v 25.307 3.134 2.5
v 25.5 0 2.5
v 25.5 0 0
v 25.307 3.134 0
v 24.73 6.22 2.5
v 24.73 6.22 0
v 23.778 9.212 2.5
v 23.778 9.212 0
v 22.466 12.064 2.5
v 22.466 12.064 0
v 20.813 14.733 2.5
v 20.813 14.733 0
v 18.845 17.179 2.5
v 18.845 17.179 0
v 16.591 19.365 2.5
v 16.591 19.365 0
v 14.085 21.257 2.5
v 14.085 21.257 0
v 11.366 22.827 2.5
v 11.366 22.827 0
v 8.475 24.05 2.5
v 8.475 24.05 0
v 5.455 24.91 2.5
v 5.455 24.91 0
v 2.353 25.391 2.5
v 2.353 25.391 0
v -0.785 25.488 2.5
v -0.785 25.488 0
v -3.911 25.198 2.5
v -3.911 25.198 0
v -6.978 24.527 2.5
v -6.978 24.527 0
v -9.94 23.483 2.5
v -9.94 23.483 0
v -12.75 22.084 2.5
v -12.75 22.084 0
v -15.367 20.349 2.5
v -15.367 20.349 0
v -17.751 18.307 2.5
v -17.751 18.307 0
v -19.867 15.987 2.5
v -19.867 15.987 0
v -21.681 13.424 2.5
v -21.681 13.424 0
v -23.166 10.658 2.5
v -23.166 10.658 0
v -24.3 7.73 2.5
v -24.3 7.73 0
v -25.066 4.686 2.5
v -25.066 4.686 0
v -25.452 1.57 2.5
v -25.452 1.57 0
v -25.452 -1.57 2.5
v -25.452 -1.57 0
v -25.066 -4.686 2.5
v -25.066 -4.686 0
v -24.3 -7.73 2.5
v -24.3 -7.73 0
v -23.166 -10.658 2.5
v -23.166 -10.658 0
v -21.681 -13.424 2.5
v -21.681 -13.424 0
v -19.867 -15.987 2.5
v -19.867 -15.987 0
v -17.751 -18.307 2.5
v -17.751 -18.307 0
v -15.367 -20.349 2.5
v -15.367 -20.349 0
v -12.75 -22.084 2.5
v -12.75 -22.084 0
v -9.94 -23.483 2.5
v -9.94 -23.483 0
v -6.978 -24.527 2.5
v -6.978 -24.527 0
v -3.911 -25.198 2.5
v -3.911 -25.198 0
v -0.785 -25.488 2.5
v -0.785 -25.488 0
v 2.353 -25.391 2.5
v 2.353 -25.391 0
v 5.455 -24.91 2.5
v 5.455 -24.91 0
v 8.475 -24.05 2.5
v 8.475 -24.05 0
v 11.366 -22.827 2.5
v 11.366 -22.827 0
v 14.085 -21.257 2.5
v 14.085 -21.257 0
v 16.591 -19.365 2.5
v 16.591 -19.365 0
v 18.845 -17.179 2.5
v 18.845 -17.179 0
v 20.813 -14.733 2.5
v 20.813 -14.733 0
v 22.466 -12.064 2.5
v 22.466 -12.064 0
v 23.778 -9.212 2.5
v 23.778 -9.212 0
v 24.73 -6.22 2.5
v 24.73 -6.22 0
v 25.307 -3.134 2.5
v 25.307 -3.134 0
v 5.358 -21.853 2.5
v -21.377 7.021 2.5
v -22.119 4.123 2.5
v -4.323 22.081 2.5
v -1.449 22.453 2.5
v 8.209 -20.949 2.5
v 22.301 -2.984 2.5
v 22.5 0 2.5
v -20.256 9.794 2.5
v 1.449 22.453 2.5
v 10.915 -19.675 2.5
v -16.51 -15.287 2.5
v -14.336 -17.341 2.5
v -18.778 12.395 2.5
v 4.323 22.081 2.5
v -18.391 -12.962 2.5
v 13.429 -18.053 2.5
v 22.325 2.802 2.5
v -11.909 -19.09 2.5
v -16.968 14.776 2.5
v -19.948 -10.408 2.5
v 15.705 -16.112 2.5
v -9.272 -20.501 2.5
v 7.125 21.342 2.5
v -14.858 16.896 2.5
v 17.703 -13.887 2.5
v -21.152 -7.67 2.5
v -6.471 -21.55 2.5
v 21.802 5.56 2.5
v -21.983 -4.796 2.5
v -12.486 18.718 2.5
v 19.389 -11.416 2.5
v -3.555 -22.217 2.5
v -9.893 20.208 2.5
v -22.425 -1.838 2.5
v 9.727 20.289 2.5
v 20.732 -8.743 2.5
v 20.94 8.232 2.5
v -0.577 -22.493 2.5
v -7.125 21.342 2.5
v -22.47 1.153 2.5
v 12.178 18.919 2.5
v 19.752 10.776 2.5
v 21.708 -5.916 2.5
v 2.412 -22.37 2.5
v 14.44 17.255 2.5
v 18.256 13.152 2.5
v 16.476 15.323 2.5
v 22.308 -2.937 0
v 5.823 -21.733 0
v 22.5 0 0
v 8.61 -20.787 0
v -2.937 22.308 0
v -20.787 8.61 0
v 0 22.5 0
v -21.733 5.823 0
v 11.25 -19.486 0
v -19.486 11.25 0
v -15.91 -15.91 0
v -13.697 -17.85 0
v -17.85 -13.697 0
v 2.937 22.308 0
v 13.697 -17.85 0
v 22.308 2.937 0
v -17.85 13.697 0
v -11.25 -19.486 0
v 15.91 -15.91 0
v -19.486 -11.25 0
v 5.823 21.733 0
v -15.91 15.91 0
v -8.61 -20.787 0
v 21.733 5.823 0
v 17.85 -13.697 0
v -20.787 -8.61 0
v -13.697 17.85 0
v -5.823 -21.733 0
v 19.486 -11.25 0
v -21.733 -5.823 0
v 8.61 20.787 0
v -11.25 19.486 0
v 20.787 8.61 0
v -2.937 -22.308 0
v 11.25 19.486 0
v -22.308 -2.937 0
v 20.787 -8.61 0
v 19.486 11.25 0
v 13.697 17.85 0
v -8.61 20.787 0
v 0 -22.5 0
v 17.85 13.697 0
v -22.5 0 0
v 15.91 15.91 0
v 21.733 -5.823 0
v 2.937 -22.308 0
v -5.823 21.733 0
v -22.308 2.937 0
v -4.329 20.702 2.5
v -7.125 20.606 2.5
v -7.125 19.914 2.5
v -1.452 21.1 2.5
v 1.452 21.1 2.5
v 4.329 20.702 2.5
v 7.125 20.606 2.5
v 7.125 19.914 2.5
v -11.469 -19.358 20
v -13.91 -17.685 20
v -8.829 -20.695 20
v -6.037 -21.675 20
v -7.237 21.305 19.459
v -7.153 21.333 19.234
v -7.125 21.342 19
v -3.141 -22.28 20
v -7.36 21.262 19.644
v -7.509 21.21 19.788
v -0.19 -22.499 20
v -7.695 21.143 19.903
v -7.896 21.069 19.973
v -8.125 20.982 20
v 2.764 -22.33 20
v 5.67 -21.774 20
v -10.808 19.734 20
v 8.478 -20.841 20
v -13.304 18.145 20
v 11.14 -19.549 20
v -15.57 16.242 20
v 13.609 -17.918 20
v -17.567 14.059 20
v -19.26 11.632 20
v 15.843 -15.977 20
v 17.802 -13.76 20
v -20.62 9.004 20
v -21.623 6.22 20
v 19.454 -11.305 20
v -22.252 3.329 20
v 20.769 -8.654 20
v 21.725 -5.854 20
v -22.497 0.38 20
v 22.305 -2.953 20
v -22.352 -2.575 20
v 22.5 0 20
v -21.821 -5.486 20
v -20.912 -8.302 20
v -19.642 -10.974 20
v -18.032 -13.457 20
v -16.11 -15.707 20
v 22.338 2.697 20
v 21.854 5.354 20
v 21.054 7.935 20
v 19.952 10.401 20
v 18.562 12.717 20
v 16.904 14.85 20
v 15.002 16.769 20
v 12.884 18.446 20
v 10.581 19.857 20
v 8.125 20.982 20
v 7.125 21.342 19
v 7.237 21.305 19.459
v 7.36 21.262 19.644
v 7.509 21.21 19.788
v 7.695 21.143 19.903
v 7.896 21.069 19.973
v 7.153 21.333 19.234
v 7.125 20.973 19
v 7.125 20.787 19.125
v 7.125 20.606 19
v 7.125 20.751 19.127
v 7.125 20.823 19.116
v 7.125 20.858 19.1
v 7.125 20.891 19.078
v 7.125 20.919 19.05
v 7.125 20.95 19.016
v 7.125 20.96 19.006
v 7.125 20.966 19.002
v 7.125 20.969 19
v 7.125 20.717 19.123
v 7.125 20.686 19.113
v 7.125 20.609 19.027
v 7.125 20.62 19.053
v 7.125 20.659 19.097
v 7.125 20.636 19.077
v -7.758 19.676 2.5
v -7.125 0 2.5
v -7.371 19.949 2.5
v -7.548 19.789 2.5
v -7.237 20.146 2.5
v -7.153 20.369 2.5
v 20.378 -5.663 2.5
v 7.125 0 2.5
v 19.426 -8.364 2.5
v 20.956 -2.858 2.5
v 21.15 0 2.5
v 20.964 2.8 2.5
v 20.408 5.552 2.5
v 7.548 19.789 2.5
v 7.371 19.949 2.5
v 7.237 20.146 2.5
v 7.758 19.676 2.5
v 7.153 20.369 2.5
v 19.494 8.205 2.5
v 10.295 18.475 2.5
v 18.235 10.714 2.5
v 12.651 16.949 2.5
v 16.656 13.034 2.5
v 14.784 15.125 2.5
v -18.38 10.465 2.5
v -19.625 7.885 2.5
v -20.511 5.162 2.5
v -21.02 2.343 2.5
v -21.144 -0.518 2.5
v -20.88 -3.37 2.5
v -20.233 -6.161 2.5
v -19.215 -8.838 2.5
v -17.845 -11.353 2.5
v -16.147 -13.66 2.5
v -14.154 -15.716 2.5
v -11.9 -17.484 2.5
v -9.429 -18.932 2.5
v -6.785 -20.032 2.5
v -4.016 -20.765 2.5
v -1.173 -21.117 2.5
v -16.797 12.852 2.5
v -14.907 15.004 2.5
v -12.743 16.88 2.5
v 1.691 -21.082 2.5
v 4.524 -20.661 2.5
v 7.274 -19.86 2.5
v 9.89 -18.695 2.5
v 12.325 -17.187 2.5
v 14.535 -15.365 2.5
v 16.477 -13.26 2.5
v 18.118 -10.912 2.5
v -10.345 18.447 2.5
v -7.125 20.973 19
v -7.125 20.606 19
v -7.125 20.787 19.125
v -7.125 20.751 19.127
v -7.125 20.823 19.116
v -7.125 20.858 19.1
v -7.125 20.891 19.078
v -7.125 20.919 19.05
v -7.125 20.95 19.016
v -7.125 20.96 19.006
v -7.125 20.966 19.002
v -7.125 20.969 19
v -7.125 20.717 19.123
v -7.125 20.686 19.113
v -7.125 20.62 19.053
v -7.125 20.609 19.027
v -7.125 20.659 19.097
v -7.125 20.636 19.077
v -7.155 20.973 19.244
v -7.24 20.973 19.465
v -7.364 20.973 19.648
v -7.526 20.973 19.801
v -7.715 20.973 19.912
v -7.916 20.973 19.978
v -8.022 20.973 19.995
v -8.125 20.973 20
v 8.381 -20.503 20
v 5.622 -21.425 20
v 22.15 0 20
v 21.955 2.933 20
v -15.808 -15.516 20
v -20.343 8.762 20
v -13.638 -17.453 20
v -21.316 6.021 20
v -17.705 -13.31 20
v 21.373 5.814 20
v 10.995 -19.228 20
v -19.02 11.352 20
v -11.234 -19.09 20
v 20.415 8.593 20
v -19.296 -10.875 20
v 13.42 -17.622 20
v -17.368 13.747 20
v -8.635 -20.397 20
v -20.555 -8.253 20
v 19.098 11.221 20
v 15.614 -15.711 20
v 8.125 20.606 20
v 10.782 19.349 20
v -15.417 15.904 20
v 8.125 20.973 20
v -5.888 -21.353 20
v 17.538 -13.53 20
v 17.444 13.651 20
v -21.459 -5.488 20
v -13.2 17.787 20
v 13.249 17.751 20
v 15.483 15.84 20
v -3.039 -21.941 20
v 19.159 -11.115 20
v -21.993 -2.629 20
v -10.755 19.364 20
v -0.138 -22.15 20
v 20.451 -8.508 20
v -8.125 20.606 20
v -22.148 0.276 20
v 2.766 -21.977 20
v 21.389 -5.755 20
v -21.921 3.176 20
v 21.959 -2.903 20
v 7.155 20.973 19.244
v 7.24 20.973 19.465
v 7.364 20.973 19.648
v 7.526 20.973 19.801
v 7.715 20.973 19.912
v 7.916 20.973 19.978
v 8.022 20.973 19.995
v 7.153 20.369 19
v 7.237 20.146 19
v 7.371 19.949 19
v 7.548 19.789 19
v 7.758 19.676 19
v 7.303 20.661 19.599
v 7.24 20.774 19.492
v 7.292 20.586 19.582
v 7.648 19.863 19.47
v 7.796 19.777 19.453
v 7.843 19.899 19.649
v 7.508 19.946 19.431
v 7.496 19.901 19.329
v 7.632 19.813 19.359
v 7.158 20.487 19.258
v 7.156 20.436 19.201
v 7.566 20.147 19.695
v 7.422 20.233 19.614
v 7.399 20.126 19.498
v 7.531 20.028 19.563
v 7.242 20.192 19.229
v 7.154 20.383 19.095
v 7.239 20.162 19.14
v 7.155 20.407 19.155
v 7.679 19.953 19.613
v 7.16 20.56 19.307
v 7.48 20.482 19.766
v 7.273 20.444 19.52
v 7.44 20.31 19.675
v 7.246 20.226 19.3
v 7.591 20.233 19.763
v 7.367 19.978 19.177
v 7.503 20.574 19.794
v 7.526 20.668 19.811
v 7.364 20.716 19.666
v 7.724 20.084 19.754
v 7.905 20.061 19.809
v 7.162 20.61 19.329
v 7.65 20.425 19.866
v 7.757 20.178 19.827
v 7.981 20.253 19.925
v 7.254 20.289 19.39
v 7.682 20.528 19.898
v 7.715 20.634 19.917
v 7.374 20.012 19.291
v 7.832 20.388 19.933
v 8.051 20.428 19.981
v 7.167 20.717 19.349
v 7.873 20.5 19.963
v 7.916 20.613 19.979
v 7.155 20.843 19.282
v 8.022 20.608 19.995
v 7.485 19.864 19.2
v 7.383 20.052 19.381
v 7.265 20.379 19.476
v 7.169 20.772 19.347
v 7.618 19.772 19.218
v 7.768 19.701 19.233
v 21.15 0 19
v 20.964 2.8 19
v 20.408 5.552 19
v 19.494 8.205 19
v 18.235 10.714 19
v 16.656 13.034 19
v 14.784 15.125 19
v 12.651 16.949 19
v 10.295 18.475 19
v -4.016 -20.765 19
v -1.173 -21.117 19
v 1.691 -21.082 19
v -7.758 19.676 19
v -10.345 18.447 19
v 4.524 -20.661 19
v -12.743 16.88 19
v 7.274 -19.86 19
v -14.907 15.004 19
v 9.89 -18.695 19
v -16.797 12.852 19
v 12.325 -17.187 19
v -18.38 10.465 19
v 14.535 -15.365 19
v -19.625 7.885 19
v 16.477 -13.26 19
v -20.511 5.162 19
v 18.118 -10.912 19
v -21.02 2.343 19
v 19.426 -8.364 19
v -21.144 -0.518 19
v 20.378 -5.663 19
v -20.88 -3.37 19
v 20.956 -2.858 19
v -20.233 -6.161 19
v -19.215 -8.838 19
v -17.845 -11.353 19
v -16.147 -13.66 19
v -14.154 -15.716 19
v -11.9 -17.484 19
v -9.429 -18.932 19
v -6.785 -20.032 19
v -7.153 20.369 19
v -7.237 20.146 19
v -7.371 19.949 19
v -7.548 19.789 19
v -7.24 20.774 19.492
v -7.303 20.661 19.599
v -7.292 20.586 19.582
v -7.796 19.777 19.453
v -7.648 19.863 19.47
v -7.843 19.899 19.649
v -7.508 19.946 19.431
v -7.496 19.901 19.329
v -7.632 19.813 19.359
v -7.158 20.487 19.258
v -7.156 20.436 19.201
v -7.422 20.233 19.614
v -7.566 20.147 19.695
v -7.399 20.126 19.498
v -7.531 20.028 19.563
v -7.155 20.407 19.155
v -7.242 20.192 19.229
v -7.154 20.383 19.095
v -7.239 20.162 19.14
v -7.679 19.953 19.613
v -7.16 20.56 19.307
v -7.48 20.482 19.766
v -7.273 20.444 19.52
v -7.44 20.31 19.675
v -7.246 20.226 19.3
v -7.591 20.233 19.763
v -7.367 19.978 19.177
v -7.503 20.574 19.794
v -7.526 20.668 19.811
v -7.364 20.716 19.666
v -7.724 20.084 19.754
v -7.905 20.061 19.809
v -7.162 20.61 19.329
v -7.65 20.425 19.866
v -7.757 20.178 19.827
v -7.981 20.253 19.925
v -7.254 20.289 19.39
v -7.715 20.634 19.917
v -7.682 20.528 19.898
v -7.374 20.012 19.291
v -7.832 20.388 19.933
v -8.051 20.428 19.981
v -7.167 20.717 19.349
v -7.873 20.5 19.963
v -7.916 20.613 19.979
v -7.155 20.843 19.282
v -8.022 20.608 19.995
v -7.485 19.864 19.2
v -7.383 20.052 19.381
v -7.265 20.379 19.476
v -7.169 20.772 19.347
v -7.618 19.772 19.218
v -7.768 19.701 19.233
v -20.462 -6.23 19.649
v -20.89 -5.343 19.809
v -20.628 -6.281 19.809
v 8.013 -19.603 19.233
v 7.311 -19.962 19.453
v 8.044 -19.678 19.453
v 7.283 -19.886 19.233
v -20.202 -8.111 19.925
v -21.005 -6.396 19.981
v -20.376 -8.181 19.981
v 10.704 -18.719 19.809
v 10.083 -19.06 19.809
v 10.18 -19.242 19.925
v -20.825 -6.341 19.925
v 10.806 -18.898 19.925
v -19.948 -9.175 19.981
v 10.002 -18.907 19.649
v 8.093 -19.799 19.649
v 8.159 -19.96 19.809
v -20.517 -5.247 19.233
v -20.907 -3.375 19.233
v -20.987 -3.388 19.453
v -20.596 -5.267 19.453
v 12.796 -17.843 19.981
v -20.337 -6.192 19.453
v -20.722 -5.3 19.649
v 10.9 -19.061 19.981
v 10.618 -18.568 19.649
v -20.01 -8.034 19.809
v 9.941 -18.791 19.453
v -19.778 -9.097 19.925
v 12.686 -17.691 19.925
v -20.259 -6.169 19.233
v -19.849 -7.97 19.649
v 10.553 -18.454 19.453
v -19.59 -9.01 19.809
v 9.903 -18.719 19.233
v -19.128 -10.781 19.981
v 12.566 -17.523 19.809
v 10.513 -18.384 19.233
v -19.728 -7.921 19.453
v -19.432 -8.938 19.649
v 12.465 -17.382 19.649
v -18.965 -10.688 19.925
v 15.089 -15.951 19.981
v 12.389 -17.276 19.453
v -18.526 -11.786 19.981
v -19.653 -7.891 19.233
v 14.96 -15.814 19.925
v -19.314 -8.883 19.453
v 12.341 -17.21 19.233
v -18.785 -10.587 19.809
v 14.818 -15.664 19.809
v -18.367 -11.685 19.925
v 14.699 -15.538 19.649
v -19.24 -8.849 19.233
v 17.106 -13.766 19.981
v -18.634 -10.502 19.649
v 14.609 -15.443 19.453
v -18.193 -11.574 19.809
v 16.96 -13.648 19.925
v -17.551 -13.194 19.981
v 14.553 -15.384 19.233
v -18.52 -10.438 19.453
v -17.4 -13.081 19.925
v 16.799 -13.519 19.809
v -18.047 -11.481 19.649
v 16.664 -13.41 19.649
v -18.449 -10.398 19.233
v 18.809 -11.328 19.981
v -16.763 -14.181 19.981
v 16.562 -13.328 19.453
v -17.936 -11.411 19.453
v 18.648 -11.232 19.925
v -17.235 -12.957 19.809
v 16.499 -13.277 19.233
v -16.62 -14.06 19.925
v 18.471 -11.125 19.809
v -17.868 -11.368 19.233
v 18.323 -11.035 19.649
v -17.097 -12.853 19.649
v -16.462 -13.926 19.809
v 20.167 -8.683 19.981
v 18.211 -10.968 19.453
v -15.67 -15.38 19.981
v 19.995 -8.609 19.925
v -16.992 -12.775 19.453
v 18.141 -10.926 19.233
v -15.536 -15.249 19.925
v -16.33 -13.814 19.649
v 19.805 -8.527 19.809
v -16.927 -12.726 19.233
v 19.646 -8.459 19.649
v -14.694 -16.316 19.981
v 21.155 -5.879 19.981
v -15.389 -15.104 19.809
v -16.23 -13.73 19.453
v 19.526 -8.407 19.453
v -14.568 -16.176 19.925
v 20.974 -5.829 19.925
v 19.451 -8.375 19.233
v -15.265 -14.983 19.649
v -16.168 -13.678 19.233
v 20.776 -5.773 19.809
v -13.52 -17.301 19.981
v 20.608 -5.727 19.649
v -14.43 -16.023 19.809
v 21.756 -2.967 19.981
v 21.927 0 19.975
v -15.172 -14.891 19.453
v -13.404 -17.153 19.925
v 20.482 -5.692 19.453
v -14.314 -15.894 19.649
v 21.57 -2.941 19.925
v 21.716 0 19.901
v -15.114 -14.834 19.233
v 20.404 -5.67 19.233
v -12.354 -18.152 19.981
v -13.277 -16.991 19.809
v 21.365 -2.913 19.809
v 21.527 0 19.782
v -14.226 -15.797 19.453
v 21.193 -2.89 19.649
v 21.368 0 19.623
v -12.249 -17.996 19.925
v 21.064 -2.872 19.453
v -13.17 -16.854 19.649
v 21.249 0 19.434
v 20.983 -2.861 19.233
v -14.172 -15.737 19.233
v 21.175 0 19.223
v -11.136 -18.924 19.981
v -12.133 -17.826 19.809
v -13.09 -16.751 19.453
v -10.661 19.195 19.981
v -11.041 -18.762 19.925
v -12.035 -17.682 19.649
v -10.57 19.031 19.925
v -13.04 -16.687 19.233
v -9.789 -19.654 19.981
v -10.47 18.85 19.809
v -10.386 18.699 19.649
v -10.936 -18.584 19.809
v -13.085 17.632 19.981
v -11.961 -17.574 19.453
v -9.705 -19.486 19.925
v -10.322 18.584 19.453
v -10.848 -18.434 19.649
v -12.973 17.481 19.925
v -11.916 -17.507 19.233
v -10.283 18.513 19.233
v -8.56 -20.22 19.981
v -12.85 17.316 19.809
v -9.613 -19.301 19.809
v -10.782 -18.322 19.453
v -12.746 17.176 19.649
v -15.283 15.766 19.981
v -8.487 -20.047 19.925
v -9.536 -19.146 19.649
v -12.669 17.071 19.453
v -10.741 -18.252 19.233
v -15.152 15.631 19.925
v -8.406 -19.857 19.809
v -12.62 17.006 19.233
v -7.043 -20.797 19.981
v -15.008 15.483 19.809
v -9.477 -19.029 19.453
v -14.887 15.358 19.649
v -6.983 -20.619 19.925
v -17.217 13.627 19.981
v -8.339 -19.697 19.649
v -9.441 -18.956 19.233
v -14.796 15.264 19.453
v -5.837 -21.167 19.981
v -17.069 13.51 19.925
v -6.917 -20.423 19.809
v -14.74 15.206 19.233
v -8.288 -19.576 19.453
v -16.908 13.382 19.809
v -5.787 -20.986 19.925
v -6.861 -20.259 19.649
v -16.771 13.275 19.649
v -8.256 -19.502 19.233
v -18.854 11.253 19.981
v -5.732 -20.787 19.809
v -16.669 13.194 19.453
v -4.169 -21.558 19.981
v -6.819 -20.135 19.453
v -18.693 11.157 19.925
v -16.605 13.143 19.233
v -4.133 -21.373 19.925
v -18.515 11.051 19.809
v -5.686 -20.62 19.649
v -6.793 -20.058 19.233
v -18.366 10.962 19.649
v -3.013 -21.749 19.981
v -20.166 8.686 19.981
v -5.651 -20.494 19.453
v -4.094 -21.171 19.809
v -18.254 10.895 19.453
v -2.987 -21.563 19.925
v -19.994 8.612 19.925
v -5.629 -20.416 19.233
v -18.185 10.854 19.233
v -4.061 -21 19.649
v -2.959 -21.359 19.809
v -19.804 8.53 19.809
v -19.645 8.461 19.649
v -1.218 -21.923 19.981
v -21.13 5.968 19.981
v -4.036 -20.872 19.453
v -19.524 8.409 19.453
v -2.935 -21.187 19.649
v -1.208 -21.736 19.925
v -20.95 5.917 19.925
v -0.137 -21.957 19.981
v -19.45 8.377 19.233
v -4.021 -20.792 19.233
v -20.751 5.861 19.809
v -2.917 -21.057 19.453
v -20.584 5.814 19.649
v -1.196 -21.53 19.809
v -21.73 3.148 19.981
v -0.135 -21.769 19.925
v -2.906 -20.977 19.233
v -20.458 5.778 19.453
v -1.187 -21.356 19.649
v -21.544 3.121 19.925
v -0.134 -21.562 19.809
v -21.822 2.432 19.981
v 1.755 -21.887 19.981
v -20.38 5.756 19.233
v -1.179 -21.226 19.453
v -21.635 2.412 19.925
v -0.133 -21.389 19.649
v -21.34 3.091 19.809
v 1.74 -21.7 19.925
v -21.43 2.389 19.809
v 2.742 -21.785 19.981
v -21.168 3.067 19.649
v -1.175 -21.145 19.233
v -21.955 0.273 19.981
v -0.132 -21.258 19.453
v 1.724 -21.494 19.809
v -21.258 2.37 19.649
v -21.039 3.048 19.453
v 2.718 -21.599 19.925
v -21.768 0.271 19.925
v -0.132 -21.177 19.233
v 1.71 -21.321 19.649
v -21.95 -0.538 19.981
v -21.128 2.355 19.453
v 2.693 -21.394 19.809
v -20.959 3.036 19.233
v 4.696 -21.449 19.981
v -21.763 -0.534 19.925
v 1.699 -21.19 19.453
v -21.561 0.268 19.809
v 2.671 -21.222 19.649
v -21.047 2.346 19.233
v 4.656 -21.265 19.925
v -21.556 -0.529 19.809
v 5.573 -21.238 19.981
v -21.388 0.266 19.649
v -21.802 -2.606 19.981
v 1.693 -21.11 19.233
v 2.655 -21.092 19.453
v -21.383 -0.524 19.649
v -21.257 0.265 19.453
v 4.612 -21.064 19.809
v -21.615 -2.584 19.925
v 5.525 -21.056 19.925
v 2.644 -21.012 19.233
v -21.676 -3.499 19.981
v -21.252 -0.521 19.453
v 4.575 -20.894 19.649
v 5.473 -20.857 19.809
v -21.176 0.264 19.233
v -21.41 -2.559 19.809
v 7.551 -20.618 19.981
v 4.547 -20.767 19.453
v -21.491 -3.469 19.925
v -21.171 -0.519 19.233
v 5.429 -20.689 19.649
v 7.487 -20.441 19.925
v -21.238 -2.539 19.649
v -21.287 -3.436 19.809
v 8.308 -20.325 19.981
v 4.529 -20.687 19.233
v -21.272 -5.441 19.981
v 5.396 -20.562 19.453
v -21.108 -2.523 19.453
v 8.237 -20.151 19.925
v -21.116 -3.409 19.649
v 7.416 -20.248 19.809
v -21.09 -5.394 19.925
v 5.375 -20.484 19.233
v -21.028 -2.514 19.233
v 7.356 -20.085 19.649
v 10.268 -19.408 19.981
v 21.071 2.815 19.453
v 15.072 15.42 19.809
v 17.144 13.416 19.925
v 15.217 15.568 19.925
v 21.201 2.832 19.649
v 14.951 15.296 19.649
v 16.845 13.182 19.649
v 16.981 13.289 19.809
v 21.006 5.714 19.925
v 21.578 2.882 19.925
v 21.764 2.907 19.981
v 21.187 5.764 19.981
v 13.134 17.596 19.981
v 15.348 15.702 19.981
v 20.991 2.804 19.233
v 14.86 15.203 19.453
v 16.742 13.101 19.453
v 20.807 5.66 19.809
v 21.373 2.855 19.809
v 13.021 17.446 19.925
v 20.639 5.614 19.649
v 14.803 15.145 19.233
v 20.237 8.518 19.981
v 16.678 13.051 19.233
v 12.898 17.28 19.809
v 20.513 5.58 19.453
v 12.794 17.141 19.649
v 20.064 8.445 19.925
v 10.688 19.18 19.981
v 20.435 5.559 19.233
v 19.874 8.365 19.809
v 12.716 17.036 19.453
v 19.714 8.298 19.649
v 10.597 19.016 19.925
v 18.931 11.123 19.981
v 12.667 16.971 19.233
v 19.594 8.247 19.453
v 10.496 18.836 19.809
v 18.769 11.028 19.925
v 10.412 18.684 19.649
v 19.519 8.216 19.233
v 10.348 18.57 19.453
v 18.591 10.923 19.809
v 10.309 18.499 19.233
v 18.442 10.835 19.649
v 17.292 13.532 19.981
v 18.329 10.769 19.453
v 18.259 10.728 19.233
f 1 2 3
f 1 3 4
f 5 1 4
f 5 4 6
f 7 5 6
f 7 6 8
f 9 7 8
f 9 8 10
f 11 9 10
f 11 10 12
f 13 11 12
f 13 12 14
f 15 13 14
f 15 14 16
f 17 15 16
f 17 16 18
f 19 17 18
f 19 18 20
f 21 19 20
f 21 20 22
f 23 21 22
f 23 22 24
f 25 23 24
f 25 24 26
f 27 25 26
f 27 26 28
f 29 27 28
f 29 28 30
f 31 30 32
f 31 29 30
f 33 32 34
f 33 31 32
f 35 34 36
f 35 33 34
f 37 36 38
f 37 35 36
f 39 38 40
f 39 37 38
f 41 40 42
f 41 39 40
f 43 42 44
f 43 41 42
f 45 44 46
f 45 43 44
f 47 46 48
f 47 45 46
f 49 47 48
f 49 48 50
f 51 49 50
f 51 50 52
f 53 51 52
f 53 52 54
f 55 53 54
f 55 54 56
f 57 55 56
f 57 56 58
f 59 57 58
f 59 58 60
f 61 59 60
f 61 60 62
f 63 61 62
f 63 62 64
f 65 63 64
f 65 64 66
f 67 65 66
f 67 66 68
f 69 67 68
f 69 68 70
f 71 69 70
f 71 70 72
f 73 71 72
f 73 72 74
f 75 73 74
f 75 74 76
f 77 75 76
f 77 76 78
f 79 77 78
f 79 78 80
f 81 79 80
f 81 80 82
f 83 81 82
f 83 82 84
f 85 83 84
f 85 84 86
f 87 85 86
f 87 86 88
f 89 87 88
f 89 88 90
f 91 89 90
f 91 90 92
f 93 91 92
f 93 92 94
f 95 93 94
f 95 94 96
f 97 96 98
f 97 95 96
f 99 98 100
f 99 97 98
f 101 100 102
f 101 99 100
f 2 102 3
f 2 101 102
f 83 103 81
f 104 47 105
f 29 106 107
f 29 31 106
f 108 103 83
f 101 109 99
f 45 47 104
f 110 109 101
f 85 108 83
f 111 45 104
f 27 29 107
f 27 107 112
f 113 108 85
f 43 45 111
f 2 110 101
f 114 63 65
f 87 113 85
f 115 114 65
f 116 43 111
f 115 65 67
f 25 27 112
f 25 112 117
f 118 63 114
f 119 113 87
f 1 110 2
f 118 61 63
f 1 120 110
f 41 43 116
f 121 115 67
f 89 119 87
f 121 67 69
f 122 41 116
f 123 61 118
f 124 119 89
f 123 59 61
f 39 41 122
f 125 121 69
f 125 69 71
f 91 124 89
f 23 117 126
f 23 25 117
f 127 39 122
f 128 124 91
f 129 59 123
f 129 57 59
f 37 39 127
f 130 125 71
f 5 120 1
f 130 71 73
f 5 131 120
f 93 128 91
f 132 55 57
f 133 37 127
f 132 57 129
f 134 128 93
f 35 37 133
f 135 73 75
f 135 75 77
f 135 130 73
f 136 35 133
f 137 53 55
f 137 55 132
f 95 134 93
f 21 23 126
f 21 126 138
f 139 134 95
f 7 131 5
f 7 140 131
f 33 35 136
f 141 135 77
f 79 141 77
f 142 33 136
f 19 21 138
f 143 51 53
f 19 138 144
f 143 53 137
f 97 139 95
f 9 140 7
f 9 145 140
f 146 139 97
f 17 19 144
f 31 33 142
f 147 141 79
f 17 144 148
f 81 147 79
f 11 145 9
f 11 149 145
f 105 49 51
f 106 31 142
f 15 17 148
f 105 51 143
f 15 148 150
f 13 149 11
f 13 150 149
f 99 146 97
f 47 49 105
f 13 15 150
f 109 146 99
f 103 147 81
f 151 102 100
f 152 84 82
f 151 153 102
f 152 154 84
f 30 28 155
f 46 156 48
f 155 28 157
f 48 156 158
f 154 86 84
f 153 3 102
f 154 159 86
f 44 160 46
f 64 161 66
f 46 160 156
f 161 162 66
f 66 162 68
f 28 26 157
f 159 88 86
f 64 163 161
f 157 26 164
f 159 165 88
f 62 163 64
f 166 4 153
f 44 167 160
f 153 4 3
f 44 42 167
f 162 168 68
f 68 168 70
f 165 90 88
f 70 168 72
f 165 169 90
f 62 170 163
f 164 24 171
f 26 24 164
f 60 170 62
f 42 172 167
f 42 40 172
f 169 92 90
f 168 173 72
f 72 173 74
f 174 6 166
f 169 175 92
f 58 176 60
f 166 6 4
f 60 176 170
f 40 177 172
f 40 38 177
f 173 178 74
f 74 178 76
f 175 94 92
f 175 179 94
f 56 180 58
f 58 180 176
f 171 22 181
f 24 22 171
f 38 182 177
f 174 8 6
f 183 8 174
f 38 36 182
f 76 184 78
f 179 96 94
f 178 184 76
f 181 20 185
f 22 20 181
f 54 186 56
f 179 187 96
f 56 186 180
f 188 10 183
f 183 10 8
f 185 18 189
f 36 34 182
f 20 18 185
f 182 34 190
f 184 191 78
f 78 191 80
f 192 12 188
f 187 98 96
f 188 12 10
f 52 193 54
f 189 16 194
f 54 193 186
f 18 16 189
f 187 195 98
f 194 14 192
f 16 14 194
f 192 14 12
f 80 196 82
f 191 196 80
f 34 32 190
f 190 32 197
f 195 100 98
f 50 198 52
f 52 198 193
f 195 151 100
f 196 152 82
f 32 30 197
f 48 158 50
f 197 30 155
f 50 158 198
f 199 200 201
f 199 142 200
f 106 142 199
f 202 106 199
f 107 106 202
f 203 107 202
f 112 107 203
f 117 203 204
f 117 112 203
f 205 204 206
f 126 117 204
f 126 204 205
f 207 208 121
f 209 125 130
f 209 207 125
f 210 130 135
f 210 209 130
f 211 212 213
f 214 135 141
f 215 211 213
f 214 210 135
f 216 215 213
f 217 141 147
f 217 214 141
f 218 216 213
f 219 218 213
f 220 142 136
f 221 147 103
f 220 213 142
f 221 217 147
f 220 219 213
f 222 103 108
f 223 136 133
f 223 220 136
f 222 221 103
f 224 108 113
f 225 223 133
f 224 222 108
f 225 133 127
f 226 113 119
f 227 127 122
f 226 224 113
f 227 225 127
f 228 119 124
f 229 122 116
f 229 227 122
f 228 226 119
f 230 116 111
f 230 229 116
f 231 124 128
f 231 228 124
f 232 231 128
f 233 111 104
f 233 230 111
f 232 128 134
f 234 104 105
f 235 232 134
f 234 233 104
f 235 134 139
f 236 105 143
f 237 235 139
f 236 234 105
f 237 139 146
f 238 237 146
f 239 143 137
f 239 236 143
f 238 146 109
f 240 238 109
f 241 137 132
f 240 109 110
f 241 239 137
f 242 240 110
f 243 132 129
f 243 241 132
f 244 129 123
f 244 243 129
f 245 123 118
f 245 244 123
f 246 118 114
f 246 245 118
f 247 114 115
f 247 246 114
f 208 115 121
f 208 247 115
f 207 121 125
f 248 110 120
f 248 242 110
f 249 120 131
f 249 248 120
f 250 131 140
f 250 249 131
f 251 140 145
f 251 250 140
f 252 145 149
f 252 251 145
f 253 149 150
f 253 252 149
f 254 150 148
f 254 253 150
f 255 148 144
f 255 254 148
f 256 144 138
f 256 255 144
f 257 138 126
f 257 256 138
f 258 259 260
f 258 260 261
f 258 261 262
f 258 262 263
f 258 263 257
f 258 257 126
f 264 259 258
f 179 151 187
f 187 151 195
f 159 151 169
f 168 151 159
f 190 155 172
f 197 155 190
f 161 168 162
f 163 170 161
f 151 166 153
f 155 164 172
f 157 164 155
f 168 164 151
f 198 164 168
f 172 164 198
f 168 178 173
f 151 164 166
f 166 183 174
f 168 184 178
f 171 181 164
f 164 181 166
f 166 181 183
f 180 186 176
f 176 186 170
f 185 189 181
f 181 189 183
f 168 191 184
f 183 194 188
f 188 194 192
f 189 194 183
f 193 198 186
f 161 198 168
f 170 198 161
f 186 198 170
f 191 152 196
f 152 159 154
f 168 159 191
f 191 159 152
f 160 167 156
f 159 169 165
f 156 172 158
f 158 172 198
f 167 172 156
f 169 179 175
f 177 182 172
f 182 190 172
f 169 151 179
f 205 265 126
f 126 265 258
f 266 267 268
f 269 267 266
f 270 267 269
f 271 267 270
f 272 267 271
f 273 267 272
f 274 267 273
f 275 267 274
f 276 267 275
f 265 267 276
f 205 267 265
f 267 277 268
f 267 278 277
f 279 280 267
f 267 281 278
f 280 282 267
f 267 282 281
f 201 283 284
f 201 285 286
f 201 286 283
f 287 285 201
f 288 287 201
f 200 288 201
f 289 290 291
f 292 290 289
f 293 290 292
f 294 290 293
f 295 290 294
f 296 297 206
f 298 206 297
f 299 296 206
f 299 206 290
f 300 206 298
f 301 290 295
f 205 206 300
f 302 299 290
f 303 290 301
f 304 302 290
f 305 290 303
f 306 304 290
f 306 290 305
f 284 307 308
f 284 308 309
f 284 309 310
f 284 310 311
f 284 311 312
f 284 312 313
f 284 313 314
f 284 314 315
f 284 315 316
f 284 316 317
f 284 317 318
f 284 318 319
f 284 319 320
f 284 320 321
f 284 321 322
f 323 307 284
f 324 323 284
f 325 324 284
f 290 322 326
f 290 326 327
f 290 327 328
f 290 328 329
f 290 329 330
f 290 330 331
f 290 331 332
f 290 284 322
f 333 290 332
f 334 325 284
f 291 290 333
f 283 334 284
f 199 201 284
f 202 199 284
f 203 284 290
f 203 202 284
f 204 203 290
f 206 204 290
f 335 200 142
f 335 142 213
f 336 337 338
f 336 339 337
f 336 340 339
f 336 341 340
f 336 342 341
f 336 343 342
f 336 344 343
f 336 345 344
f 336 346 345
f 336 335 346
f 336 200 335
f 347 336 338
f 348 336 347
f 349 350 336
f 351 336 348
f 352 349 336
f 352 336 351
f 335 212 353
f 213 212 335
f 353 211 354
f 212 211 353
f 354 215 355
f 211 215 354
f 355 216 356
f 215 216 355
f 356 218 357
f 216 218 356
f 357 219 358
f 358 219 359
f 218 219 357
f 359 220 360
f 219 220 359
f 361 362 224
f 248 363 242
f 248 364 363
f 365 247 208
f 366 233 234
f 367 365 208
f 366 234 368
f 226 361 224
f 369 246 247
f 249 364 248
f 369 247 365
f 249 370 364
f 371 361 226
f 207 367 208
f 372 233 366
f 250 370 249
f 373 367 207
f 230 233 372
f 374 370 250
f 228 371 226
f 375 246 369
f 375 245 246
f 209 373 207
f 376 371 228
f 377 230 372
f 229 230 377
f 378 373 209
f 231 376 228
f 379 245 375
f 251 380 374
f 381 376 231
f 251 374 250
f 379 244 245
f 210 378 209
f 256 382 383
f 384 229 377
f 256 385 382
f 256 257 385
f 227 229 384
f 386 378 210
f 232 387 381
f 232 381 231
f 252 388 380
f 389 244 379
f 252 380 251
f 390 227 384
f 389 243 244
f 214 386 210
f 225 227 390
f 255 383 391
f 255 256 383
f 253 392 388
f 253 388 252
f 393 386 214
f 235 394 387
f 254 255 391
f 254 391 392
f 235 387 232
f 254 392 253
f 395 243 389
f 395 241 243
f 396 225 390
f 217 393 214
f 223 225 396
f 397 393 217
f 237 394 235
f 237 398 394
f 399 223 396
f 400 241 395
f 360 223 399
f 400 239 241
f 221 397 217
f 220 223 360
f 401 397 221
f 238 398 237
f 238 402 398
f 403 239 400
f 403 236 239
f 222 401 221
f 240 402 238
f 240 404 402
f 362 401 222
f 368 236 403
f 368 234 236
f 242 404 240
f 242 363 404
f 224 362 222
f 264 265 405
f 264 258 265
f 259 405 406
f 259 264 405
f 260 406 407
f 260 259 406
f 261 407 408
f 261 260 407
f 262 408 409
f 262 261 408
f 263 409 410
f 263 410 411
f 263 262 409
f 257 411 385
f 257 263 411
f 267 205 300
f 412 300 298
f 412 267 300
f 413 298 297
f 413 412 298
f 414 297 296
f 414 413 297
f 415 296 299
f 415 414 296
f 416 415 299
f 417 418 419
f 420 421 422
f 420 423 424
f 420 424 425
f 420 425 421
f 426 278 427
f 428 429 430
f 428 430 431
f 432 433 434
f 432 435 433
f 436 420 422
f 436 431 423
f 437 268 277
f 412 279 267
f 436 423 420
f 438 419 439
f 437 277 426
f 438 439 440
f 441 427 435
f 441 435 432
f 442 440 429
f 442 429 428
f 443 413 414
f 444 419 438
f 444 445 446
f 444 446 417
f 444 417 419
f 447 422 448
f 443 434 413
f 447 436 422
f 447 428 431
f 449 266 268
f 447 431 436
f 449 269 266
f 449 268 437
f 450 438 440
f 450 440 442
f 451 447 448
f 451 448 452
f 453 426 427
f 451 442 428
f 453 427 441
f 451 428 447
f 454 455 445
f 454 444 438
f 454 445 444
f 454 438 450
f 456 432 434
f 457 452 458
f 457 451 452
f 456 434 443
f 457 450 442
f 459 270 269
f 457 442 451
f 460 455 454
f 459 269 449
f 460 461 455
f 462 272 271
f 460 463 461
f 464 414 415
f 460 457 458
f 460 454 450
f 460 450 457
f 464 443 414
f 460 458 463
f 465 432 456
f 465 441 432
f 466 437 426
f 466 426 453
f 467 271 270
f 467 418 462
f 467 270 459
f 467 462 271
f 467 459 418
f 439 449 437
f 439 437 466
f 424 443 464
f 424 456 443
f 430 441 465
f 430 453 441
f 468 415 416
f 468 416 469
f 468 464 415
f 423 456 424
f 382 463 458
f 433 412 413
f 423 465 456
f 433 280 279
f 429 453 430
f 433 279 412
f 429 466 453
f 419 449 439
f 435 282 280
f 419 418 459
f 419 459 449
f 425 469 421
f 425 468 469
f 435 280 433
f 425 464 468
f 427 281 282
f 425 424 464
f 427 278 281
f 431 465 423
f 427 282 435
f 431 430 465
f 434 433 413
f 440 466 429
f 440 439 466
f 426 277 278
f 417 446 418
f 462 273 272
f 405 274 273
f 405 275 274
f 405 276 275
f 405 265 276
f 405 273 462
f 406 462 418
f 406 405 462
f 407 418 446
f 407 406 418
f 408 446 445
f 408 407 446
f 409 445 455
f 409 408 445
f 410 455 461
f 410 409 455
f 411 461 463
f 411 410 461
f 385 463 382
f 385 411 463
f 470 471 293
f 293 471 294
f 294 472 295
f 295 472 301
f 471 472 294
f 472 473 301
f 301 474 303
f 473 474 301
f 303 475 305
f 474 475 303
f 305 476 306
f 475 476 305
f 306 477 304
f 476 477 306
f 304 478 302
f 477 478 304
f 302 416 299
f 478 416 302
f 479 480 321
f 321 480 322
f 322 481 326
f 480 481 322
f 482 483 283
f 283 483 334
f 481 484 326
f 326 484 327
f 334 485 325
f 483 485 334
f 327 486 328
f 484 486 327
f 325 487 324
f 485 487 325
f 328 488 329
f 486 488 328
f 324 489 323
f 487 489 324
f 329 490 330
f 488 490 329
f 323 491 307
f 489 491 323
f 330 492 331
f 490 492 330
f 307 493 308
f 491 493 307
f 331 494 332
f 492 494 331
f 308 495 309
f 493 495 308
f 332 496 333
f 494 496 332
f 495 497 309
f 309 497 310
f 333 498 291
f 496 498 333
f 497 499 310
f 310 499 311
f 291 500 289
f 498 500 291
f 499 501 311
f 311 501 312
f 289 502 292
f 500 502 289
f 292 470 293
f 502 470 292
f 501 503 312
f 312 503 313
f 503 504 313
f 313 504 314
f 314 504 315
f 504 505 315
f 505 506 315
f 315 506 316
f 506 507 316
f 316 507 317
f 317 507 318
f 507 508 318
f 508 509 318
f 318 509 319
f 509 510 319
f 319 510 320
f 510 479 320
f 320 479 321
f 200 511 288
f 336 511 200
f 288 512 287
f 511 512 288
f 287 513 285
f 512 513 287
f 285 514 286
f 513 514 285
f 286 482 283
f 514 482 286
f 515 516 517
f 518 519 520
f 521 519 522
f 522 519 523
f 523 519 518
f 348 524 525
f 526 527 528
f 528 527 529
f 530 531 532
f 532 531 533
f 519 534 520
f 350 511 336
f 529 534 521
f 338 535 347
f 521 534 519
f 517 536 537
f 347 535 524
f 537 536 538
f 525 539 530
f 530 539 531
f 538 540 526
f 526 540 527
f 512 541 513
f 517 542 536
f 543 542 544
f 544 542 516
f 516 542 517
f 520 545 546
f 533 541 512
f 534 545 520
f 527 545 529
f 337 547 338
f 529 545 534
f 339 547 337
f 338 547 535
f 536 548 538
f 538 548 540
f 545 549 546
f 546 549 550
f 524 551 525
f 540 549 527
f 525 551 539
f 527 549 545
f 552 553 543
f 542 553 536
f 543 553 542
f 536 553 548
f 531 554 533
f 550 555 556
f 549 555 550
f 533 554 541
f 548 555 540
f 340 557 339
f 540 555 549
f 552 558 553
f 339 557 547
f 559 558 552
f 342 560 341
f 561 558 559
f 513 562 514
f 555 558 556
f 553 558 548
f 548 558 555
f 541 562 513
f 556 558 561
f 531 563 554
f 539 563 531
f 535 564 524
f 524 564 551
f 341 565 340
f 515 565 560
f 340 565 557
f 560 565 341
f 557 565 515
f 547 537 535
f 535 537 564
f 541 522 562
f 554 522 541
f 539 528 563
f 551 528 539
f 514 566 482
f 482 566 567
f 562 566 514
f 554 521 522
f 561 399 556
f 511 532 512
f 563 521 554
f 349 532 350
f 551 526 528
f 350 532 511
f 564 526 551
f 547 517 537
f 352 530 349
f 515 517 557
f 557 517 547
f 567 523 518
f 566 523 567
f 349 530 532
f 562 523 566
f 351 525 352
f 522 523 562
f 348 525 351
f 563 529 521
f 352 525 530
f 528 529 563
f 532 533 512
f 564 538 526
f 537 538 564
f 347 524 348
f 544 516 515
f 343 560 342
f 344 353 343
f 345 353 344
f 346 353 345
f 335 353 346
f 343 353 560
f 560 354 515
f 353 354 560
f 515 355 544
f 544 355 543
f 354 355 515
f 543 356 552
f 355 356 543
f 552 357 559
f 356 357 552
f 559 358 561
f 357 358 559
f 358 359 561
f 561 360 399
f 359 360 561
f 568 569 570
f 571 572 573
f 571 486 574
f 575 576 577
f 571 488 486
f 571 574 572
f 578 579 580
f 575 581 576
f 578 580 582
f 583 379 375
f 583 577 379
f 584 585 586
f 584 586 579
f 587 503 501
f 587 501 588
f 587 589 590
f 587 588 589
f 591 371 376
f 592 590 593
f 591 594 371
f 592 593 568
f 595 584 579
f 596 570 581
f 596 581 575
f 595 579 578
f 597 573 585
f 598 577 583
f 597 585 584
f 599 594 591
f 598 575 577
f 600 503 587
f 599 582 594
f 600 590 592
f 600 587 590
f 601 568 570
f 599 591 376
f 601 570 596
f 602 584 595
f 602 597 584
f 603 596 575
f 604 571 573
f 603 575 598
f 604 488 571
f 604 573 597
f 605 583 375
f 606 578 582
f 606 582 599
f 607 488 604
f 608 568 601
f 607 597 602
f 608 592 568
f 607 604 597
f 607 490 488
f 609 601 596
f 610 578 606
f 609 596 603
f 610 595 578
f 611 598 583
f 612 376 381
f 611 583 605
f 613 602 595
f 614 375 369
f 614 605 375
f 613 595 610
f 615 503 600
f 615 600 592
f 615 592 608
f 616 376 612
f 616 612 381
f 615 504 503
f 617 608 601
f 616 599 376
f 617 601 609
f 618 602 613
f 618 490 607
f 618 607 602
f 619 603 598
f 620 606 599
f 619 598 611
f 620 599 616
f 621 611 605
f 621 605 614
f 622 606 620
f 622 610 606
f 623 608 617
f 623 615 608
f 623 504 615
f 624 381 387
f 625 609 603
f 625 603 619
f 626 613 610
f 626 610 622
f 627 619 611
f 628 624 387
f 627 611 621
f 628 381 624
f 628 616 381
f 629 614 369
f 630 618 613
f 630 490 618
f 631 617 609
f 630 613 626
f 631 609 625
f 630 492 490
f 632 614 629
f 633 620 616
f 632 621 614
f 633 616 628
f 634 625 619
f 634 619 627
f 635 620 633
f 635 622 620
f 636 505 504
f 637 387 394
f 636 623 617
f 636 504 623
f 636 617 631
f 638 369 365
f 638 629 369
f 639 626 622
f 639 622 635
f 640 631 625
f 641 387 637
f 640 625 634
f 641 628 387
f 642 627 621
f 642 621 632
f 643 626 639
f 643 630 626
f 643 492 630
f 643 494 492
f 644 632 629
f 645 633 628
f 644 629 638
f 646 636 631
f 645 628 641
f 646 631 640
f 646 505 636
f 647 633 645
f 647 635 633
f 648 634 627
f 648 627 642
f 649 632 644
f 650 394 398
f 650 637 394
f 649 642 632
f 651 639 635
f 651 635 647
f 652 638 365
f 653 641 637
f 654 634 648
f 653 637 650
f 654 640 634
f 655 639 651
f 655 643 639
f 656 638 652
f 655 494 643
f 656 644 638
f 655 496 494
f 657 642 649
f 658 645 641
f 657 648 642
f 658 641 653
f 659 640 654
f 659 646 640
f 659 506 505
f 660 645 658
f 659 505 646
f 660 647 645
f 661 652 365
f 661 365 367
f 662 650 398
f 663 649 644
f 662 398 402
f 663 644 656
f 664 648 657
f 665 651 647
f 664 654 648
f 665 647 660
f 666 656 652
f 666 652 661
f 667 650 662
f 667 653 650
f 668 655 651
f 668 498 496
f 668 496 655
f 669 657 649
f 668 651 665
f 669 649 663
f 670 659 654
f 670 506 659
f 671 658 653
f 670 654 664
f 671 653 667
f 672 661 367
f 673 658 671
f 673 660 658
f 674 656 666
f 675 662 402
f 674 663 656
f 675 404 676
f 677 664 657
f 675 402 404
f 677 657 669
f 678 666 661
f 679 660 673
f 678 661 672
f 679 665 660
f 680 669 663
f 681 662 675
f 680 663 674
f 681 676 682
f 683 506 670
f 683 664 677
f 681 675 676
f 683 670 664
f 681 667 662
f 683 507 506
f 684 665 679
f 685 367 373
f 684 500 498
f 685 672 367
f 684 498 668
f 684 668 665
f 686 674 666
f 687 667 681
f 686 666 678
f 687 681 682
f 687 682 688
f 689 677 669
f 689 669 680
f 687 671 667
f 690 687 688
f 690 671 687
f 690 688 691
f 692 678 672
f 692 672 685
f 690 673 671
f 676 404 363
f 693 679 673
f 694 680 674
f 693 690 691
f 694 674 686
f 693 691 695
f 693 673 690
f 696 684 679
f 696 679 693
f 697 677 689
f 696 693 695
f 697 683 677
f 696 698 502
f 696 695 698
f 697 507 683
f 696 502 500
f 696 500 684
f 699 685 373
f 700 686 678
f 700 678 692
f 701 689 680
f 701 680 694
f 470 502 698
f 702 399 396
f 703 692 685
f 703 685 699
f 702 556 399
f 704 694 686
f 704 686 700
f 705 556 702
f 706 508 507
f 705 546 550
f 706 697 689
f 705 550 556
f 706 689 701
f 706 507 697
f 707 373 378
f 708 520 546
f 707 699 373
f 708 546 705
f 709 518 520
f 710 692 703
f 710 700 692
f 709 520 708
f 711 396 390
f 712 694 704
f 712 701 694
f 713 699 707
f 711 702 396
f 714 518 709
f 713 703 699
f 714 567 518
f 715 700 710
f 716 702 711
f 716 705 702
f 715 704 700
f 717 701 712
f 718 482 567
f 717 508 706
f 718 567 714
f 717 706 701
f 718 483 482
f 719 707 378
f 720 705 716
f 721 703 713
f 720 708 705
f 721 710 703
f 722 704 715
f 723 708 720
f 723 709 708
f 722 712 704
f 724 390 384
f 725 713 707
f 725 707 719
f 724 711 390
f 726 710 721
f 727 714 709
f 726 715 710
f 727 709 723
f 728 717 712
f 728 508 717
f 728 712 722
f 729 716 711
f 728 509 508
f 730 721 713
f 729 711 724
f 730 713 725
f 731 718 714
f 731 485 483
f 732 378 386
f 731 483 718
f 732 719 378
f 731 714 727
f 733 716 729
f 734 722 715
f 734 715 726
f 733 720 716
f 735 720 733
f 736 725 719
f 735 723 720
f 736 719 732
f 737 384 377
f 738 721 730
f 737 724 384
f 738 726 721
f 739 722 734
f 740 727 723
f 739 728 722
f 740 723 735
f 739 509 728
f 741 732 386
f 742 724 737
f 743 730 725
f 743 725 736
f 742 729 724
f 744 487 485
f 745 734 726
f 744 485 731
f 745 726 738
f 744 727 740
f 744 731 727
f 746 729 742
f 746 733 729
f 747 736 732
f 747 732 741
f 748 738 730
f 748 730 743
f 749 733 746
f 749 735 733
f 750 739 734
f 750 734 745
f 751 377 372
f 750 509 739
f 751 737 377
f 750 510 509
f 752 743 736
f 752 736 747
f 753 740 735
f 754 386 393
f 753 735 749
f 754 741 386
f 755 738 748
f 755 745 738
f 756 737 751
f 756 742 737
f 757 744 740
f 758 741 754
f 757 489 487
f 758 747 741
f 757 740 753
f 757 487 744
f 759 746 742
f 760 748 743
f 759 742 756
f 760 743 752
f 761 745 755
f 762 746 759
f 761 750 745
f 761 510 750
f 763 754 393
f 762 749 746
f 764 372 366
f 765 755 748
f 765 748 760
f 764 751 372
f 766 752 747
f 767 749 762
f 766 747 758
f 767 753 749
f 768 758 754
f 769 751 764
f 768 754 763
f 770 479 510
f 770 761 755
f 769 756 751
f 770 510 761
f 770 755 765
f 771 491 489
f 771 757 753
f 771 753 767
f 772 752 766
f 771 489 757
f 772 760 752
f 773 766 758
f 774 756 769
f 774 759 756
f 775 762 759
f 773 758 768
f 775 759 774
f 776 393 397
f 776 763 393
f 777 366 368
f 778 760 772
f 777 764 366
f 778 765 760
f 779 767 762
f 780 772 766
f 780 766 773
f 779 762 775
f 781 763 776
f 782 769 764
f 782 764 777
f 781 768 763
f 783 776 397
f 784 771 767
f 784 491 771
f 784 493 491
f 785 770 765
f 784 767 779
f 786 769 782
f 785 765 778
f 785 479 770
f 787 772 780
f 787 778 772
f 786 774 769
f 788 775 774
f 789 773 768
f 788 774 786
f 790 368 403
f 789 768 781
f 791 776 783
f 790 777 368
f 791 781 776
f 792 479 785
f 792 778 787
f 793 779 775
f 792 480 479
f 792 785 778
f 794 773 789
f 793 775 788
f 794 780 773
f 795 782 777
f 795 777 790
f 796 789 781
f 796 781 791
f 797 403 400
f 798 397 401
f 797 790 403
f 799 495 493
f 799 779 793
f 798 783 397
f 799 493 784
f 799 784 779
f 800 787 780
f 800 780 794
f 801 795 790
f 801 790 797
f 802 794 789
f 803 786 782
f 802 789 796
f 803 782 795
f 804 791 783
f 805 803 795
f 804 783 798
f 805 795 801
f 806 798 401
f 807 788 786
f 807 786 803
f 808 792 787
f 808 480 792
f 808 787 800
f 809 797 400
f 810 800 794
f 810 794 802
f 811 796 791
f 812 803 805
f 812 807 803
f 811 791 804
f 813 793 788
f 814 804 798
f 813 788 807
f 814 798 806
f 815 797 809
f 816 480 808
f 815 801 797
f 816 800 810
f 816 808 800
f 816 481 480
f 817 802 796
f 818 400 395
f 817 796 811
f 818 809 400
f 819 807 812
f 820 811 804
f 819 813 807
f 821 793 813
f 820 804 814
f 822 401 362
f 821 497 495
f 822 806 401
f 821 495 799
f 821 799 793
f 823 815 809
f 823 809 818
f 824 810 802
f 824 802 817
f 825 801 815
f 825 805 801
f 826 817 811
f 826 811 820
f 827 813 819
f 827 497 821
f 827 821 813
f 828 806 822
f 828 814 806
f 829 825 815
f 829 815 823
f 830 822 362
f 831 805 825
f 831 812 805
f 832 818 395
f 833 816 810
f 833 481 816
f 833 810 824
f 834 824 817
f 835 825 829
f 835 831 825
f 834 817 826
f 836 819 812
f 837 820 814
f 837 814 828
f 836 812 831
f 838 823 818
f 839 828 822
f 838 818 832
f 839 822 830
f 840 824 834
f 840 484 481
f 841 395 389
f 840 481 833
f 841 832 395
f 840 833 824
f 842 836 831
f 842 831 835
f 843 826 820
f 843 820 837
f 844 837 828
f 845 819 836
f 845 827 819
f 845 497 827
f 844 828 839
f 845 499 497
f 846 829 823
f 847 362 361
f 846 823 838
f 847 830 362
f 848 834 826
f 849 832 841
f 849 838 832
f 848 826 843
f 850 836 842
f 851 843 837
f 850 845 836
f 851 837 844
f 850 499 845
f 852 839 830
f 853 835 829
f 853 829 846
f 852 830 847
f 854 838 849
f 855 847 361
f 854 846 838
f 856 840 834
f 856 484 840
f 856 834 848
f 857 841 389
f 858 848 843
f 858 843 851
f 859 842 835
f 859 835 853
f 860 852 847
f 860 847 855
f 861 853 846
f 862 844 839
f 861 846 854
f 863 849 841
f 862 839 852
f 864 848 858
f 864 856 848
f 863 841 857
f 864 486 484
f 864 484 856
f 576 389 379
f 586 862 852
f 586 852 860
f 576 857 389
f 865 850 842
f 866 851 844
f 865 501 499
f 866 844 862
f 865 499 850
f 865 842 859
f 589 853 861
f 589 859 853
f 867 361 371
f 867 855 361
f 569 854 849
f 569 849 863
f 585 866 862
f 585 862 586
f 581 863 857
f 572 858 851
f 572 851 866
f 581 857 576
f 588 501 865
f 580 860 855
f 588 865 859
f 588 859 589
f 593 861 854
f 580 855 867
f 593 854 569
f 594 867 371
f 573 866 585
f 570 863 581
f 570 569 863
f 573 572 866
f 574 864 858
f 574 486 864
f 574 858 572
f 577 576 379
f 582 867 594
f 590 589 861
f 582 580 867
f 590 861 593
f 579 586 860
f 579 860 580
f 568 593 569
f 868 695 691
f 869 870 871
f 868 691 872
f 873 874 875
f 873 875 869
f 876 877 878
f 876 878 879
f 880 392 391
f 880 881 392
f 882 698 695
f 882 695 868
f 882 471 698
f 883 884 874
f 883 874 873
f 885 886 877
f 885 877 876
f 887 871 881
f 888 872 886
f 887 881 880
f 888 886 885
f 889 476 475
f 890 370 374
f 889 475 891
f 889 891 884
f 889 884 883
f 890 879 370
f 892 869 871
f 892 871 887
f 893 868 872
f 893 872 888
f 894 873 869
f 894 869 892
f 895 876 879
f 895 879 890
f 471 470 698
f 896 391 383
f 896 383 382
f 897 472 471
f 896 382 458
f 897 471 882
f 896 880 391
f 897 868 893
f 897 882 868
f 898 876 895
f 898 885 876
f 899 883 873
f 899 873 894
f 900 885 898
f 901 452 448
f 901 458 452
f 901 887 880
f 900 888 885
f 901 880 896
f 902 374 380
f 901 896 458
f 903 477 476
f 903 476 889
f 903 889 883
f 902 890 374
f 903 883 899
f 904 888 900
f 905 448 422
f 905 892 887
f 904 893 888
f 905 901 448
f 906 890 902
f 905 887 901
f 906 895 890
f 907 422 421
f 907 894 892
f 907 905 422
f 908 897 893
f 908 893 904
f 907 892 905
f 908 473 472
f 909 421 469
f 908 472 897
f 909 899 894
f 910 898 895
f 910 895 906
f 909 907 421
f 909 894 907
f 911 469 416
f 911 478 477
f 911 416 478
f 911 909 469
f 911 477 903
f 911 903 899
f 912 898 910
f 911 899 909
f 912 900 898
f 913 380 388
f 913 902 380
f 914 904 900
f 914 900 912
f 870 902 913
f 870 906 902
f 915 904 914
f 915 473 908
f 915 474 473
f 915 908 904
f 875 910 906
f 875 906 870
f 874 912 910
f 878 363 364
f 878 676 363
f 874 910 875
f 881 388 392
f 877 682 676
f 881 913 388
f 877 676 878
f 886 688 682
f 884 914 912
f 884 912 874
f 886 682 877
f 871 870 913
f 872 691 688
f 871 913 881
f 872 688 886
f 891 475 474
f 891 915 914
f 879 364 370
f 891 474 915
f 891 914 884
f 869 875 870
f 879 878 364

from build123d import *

# Parameters (mm, degrees)
BOX_W             = 14.25
BOX_H             = 30
BOX_DEPTH         = 20
CYLINDER002_R     = 21.15
CYLINDER002_DEPTH = 30
CYLINDER001_R     = 22.5
CYLINDER001_DEPTH = 20
FILLET_R          = 1
FILLET001_R       = 1
CYLINDER_R        = 25.5
CYLINDER_DEPTH    = 2.5


with BuildPart() as cube:
    # Box → Box (new body)
    with BuildSketch(Plane(origin=(-7.125, 0, 2.5), x_dir=(1, 0, 0), z_dir=(0, 0, 1))):
        with Locations((7.125, 15)):
            Rectangle(BOX_W, BOX_H)
    extrude(amount=BOX_DEPTH)


with BuildPart() as cylinder002:
    # Cylinder002 → Cylinder002 (new body)
    with BuildSketch(Plane.XY.offset(2.5)):
        Circle(CYLINDER002_R)
    extrude(amount=CYLINDER002_DEPTH)


with BuildPart() as fillet001:
    # Cylinder001 → Cylinder001 (new body)
    with BuildSketch(Plane.XY):
        Circle(CYLINDER001_R)
    extrude(amount=CYLINDER001_DEPTH)

    # Cut: cut Cylinder002
    add(cylinder002.part, mode=Mode.SUBTRACT)

    # Cut001: cut Cube
    add(cube.part, mode=Mode.SUBTRACT)

    # Fillet
    fillet_edges = [fillet001.edges().sort_by_distance(p)[0] for p in [
        (-12.178439, -17.291851, 20),
        (17.291851, 12.178439, 20),
    ]]
    fillet(fillet_edges, radius=FILLET_R)

    # Fillet001
    fillet001_edges = [fillet001.edges().sort_by_distance(p)[0] for p in [
        (-7.125, 21.157422, 20),
        (7.125, 21.157422, 20),
        (-7.125, 20.235006, 19.716842),
        (7.125, 20.235006, 19.716842),
    ]]
    fillet(fillet001_edges, radius=FILLET001_R)


with BuildPart() as viewfinder_cap:
    # Cylinder → Cylinder (new body)
    with BuildSketch(Plane.XY):
        Circle(CYLINDER_R)
    extrude(amount=CYLINDER_DEPTH)

    # Fusion: union Fillet001
    add(fillet001.part)


solid = viewfinder_cap.part
